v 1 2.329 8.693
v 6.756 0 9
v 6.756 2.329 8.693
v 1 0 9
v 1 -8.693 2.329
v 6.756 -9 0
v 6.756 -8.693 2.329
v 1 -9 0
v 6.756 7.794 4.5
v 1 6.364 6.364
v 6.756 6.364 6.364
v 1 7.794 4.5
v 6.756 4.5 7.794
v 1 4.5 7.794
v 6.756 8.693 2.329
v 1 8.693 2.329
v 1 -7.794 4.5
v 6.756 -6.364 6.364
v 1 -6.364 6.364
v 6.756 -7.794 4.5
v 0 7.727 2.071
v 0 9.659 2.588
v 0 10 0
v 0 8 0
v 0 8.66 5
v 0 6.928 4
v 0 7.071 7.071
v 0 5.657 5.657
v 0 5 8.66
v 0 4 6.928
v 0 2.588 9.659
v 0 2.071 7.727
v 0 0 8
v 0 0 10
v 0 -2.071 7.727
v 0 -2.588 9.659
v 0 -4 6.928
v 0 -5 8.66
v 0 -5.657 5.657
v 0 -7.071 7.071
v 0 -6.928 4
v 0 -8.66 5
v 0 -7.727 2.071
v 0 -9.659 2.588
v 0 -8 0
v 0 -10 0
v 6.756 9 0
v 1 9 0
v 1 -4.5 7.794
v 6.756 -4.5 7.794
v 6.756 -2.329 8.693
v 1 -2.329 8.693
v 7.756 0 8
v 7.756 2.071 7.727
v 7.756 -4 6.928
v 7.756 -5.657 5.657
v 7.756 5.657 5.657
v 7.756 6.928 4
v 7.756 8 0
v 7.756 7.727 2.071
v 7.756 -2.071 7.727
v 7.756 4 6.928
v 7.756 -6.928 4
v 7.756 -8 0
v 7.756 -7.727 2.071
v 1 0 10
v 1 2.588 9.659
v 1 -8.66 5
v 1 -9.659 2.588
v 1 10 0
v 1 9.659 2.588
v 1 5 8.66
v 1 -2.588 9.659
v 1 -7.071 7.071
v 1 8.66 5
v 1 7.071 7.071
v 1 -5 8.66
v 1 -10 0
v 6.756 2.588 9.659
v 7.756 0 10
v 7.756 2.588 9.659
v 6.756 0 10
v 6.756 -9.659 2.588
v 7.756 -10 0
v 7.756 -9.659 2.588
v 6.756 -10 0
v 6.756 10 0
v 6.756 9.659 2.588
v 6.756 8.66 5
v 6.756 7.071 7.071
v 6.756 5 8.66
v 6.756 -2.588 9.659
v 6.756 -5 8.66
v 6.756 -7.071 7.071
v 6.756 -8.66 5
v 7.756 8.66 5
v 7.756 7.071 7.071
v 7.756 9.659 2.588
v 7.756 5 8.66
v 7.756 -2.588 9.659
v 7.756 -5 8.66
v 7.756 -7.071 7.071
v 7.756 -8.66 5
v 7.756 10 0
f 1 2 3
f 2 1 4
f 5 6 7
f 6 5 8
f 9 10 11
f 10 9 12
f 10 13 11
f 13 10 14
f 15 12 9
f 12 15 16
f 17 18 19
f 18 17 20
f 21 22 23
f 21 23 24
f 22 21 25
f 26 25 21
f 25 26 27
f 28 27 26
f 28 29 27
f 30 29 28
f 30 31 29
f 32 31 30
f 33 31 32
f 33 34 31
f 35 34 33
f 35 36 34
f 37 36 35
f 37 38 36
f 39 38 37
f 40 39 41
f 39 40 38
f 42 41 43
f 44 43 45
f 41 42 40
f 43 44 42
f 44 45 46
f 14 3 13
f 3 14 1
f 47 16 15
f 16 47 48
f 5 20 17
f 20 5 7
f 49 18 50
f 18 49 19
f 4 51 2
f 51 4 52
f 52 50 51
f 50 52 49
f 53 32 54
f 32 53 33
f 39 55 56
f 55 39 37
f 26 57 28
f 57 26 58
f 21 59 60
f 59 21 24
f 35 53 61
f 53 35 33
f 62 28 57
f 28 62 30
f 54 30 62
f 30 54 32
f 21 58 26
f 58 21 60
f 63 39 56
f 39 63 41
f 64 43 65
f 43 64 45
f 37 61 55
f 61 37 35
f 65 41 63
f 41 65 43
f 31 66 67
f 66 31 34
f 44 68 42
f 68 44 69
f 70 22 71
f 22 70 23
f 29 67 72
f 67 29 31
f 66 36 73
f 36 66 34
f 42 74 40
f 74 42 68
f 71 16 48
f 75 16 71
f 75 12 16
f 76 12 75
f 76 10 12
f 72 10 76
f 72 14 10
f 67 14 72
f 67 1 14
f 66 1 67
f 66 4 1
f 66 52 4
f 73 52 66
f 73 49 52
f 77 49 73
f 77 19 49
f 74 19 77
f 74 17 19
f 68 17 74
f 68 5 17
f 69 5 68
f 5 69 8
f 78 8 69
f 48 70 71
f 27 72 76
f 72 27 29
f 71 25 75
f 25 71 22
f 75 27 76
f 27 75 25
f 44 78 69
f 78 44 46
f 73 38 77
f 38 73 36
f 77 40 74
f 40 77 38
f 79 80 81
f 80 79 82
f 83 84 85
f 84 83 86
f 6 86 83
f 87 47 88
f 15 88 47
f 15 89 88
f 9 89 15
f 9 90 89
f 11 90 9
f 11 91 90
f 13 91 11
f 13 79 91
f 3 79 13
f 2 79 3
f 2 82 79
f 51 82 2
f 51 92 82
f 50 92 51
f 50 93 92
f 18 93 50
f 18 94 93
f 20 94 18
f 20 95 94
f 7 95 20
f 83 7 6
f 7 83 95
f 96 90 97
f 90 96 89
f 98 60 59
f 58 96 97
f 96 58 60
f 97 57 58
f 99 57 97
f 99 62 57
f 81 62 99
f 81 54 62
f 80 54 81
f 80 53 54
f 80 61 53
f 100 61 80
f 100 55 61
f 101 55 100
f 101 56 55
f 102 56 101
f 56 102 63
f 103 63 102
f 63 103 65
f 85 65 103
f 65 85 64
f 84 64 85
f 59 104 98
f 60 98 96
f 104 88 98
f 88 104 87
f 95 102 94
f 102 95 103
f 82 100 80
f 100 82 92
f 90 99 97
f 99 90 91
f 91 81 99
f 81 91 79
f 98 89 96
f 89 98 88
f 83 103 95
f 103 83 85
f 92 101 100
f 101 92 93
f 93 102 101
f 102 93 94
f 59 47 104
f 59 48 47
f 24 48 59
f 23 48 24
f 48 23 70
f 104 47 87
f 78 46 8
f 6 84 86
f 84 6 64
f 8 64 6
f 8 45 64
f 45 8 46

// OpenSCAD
// file: ../build_environments.scad
// build_environments.scad: modules to build level sections
//

module pool(diameter=10.0, wall_height=2.0, step_width=3.0, connections=[])
{
    difference() {
        union() {
        difference() {
            cylinder(h=0.5,r1=diameter+step_width,r2=diameter+step_width,$fn=48);
            translate([0,0,-0.1])
                cylinder(h=0.7,r1=diameter,r2=diameter,$fn=48);
        }
        difference() {
            cylinder(h=wall_height,r1=diameter+step_width+1.0,r2=diameter+step_width+1.0,$fn=48);
            translate([0,0,-0.1])
                cylinder(h=wall_height+0.2,r1=diameter+step_width,r2=diameter+step_width,$fn=48);
        }
        }
    
        for (c = connections)
        {
            rotate([0,90,0]) {
                angle = atan2(c[1],c[0]);
                rotate([-angle,0,0]) {
                    cylinder(h=diameter+5.0,r1=c[2],r2=c[2],$fn=48);
                }
            }
        }
    }
}

module straight(length=10.0, width=2.0, dy1=0.0, dy2=0.0, dz=0.0)
{
    dims = [0, 0, 0, 0, 0, (dz/length)];
    matrix = [
        [ 1, dims[0], dims[1], 0 ],
        [ dims[2], 1, dims[4], 0 ],
        [ dims[5], dims[3], 1, 0 ],
        [ 0, 0, 0, 1 ]
    ];
    multmatrix(matrix)
    difference() {
        translate([dy1,0,0])
        union() {
            rotate([0,90,0]) {
                difference() {
                    cylinder(h=(length-dy1-dy2),r1=width+1.0,r2=width+1.0,$fn=24);
                    translate([0,0,-0.1])
                        cylinder(h=(length-dy1-dy2+0.2),r1=width,r2=width,$fn=24);
                }
                difference() {
                    cylinder(h=1.0,r1=width+2.0,r2=width+2.0,$fn=24);
                    translate([0,0,-0.1])
                        cylinder(h=1.2,r1=width,r2=width,$fn=24);
                }
                translate([0,0,(length-dy1-dy2)-1.0]) {
                    difference() {
                        cylinder(h=1.0,r1=width+2.0,r2=width+2.0,$fn=24);
                        translate([0,0,-0.1])
                            cylinder(h=1.2,r1=width,r2=width,$fn=24);
                    }
                }
            }
        }
        translate([0,0,-(2*width+4.0)/2])
            cube([3*length,3*length,2*width+4.0],center=true);
    }
}

module curve(p0=[0,0], center=[0,0], dir=1, angle=0.0, width=2.0)
{
    radius = sqrt((p0[0]-center[0])*(p0[0]-center[0]) + (p0[1]-center[1])*(p0[1]-center[1]));
    if (dir == 0) {
        difference() {
            rotate([0,0,-90])
            difference() {
                rotate_extrude(angle = angle, convexity = 10, $fn=32)
                    translate([radius, 0, 0])
                        circle(r = width+1.0,$fn=24);
                rotate([0,0,-1.0])
                    rotate_extrude(angle = angle+2.0, convexity = 10, $fn=32)
                        translate([radius, 0, 0])
                            circle(r = width,$fn=24);
            }
            translate([0,0,-(2*width+4.0)/2])
                cube([5*radius,5*radius,2*width+4.0],center=true);
        }
    }
    else {
        difference() {
            rotate([0,0,90])
            difference() {
                rotate_extrude(angle = -angle, convexity = 10, $fn=32)
                    translate([radius, 0, 0])
                        circle(r = width+1.0,$fn=24);
                rotate([0,0,1.0])
                    rotate_extrude(angle = -angle-2.0, convexity = 10, $fn=32)
                        translate([radius, 0, 0])
                            circle(r = width,$fn=24);
            }
            translate([0,0,-(2*width+4.0)/2])
                cube([5*radius,5*radius,2*width+4.0],center=true);
        }
    }

}

// test pool
//pool(diameter=12.0000, wall_height=3.0000, step_width=3.0000, connections=[[0.0000,-26.0000,2.0000], [23.6074,0.0000,2.0000]]);

// test straight, slope
//straight(length=26.0000, width=2.0000, dy1=11.8322, dy2=6.7082, dz=0.0000);
//straight(length=29.1549, width=12.0000, dy1=0.0000, dy2=0.0000, dz=-15.0000);

// test curve
//curve(p0=[23.6074, 0.0000], center=[23.6074, 5.0000], dir=0, angle=60.1011, width=2.0000);
//curve(p0=[33.6426, 12.4219], center=[37.9771, 9.9295], dir=1, angle=120.4627, width=2.0000);
// main file
use <../build_environments.scad>;
straight(length=7.7562, width=8.0000, dy1=0.0000, dy2=0.0000, dz=0.0000);
